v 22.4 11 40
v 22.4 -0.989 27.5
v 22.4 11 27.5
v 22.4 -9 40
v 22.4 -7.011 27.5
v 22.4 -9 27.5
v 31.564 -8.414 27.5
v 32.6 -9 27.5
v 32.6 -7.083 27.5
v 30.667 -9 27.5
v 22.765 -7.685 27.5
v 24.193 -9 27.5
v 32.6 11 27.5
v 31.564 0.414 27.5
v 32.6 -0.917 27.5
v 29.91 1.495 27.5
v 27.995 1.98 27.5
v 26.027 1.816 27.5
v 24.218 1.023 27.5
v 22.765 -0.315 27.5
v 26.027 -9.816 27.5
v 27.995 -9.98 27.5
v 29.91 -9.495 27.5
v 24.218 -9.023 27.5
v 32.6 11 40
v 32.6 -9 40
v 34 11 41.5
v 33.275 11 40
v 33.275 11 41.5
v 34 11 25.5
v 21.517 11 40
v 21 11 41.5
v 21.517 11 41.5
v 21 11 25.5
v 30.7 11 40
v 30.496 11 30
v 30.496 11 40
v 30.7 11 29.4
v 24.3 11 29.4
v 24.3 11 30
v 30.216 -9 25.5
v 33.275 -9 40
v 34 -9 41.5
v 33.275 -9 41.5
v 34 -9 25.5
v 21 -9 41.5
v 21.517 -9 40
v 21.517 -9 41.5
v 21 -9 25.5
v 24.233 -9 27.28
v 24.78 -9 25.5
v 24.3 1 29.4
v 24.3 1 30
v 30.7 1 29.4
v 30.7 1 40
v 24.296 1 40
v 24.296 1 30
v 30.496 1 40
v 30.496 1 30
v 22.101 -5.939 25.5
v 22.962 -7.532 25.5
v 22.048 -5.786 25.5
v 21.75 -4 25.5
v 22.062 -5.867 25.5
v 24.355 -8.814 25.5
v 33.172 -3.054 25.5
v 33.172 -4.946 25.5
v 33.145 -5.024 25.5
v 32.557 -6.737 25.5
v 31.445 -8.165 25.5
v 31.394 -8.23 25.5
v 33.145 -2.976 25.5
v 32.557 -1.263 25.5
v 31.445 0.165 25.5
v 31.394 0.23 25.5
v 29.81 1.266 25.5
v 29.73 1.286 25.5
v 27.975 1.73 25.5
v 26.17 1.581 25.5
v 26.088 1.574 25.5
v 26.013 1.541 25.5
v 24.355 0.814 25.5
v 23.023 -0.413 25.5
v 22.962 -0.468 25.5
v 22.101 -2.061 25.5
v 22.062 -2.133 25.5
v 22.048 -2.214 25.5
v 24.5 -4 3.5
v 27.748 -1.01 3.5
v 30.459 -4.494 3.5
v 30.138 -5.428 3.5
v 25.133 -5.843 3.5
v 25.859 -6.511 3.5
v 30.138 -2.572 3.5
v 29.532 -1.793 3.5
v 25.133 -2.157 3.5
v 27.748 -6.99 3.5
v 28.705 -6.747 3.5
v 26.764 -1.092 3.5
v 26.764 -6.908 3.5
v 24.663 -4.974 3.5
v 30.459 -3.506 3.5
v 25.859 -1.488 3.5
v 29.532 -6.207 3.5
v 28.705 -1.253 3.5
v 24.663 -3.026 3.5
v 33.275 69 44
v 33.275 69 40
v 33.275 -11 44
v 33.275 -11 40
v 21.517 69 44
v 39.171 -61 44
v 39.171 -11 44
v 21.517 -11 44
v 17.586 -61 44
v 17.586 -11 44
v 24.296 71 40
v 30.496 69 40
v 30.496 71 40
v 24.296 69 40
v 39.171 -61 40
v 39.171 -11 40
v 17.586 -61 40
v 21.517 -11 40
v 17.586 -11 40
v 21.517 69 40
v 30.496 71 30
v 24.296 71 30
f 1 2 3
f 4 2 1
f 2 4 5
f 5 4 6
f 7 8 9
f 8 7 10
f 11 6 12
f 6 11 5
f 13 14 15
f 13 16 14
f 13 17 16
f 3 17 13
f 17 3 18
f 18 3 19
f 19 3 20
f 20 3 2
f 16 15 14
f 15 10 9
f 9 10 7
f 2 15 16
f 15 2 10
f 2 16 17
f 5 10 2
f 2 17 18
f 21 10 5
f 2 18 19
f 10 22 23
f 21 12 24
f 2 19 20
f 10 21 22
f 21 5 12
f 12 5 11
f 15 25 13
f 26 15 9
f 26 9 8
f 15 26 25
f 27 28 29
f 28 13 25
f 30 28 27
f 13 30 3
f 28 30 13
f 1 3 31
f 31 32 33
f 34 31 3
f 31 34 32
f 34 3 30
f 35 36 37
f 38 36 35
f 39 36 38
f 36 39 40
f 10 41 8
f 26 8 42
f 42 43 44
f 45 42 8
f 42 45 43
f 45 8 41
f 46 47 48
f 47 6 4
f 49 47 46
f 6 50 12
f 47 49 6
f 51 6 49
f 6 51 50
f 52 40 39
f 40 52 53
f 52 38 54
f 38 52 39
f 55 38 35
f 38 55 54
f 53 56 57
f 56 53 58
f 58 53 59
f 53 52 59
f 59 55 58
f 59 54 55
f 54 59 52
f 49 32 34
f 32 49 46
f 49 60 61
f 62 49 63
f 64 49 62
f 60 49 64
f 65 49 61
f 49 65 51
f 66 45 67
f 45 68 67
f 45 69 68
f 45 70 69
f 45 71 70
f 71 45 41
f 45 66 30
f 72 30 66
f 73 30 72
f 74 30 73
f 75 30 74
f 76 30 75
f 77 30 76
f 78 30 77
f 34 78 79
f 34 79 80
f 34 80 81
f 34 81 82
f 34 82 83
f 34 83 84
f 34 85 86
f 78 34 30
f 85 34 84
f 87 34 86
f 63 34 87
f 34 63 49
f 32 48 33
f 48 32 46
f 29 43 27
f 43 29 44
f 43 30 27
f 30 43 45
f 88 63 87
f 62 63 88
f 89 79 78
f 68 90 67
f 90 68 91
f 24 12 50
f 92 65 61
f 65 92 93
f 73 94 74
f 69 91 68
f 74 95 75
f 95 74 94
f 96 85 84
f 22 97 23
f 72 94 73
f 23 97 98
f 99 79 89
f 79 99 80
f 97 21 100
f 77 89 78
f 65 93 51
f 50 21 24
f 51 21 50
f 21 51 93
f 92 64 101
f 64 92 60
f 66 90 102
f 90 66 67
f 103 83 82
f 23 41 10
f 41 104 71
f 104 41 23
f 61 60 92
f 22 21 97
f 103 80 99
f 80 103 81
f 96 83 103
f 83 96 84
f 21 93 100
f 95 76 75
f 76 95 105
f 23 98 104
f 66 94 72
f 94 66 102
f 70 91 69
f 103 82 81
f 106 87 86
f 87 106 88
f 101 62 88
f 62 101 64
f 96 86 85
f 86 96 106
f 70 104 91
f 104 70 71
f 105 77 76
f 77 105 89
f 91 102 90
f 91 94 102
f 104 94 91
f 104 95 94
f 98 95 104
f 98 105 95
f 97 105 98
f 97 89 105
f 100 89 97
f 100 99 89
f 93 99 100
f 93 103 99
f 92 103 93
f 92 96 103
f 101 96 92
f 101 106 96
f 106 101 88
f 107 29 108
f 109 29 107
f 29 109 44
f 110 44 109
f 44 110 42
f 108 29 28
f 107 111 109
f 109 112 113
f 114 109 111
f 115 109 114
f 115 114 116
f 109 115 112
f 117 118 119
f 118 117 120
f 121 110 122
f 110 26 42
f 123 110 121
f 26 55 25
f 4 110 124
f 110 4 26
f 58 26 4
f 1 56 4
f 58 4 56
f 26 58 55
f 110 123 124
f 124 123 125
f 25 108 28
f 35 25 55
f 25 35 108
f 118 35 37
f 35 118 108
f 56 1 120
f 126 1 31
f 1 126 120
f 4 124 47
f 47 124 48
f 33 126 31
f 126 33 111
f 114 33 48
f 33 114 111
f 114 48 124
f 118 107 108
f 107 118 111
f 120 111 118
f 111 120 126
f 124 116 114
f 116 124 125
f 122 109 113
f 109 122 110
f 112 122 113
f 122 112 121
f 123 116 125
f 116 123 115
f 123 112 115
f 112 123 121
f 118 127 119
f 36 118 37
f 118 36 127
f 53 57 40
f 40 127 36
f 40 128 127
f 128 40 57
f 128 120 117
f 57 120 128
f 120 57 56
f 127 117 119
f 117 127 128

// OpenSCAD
// file: irkem_hammerTips_v0.scad
tol = 0.2;
extrWall = 1.7+tol;
extrH = 12.9+tol;//12.6+tol;
extrW = 10+tol;

hammerY = 20;
hammerZ = 24;

module hammerTips(){
translate([0,-5,0]) cylinder(hammerZ,6,3);
difference(){
    translate([-6.5,-10,-14]) cube([13,hammerY,16]);
    union(){uChan();translate([-extrW/2,-hammerY/2,-extrH]) cube([extrW,hammerY/2,extrH]);
}
}
module uChan(){
difference(){
    translate([-extrW/2,-hammerY/2,-extrH]) cube([extrW,hammerY,extrH]);
    translate([-extrW/2+extrWall,-hammerY/2,-extrH-extrWall]) cube([extrW-2*extrWall,hammerY,extrH]);
}
}
}

//hammerTips();
// main file
include <irkem_hammerTips_v0.scad>

xO = -6;
yO = -11;
zO = 40;

kH = 4;
bH = 10;
wL = 50;
bL = 80;
oct = 6.5 * 25.4;
gap = 2;
n_oct = 1;//5;
n_keys = 12 * n_oct;
oset = -1;

sharpFlag = 1;

for (k = [2]){//:1:(n_keys-1)]){
    //
    translate([k*13.75+6.0+xO,12+yO,-12.5+zO]) rotate([0,180,0]) hammerTips();
}

for (k = [0:1:(n_oct-1)]){

//C:
//color("ivory") translate([k*oct+0+xO,0+yO,0+zO]) cube([oct*1/12-gap,bL,kH]);
//color("ivory") translate([k*oct+0+xO,-wL+yO,0+zO]) cube([oct*1/7-gap,wL,kH]);

////C#:
//if (sharpFlag){    
//color("black") translate([k*oct+oct*1/12+xO,gap+yO,0+zO]) cube([oct*1/12-gap,bL,kH+bH]);
//}//

////D:
color("ivory") translate([k*oct+oct*2/12+xO,0+yO,0+zO]) cube([oct*1/12-gap,bL,kH]);
color("ivory") translate([k*oct+oct*1/7+xO,-wL+yO,0+zO]) cube([oct*1/7-gap,wL,kH]);//

////D#:
//if (sharpFlag){
//color("black") translate([k*oct+oct*3/12+xO,gap+yO,0+zO]) cube([oct*1/12-gap,bL,kH+bH]);
//}//

////E:
//color("ivory") translate([k*oct+oct*4/12+xO,0+yO,0+zO]) cube([2+oct*1/12-gap,bL,kH]);
//color("ivory") translate([k*oct+oct*2/7+xO,-wL+yO,0+zO]) cube([oct*1/7-gap,wL,kH]);//

////F:
//color("ivory") difference(){
//    translate([k*oct+oct*3/7+xO,-wL+yO,0+zO]) cube([oct*1/7-gap,wL+bL,kH]);
//    translate([k*oct+oct*6/12-2+xO,0+yO,0+zO]) cube([4+oct*(1/7-1/12)-gap,bL,kH]);
//}
//color("ivory") translate([k*oct+oct*3/7+xO,-wL+yO,0+zO]) cube([oct*1/7-gap,wL,kH]);//

////F#:
//if (sharpFlag){
//color("black") translate([k*oct+oct*6/12+xO,gap+yO,0+zO]) cube([oct*1/12-gap,bL,kH+bH]);
//}//

////G:
//color("ivory") translate([k*oct+oct*7/12+xO,0+yO,0+zO]) cube([oct*1/12-gap,bL,kH]);
//color("ivory") translate([k*oct+oct*4/7+xO,-wL+yO,0+zO]) cube([oct*1/7-gap,wL,kH]);//

////G#:
//if (sharpFlag){
//color("black") translate([k*oct+oct*8/12+xO,gap+yO,0+zO]) cube([oct*1/12-gap,bL,kH+bH]);
//}//

////A:
//color("ivory") translate([k*oct+oct*9/12+xO,0+yO,0+zO]) cube([oct*1/12-gap,bL,kH]);
//color("ivory") translate([k*oct+oct*5/7+xO,-wL+yO,0+zO]) cube([oct*1/7-gap,wL,kH]);//

////A#:
//if (sharpFlag){
//color("black") translate([k*oct+oct*10/12+xO,gap+yO,0+zO]) cube([oct*1/12-gap,bL,kH+bH]);
//}//

////B:
//color("ivory") translate([k*oct+oct*11/12+xO,0+yO,0+zO]) cube([oct*1/12-gap,bL,kH]);
//color("ivory") translate([k*oct+oct*6/7+xO,-wL+yO,0+zO]) cube([oct*1/7-gap,wL,kH]);//

}

for (i = [2]){//,2,4,5,7,9,11]){//[0:1:(n_keys-1)]){
    translate([oset+oct*i/12+(oct*1/12-6.2)/2+xO,2+10+yO,-10+zO]) cube([6.2,bL-10,10]);
}

//if (sharpFlag){
//    for (i = [1,3,6,8,10]){//[0:1:(n_keys-1)]){
//    translate([oset+oct*i/12+(oct*1/12-6.2)/2+xO,2+10+yO,-10+zO]) cube([6.2,bL-10,10]);
//}
//}
